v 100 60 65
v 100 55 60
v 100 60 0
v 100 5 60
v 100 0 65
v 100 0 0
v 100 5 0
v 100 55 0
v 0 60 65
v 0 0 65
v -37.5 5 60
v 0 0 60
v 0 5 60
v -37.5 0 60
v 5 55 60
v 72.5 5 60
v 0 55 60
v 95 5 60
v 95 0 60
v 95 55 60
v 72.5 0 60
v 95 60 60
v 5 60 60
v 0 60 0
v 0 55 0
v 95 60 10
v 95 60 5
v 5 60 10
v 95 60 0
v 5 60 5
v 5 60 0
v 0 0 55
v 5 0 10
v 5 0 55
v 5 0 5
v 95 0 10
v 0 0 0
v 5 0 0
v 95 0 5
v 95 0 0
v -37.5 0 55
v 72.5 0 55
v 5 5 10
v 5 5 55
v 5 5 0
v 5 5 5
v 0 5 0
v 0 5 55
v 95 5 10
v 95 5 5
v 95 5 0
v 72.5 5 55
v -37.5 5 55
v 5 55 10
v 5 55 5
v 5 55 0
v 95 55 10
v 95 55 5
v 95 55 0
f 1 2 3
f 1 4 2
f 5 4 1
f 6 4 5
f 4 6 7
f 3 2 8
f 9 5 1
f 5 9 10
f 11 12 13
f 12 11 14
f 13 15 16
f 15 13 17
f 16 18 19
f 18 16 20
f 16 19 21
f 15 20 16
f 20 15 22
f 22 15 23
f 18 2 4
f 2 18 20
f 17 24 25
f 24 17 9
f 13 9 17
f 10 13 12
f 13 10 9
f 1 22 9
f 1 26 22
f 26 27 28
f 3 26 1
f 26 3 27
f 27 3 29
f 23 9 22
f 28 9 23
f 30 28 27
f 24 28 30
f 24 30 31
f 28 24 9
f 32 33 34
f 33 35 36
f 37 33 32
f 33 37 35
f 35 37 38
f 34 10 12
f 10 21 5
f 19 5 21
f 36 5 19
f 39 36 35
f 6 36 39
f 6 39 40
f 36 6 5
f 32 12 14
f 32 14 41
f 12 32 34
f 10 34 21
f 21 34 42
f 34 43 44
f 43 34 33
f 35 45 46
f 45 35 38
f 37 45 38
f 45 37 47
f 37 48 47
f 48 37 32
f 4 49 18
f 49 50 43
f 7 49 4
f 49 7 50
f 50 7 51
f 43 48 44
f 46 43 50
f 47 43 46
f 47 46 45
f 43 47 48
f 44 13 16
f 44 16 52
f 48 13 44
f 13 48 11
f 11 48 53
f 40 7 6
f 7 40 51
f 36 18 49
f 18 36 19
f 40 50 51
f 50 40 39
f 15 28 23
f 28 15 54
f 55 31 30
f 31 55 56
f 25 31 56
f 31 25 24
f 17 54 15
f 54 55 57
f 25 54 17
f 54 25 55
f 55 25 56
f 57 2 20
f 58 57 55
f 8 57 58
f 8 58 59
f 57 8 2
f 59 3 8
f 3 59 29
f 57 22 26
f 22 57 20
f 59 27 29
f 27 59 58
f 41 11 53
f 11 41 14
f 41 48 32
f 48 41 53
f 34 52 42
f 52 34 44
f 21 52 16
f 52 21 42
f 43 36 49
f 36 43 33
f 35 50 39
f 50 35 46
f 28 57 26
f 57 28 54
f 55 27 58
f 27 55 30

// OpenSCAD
// Dimensions
tabletop_length = 100;
tabletop_width = 60;
tabletop_thickness = 5;

leg_thickness = 5;
leg_height = 60;

support_bar_thickness = 5;
central_bar_length = tabletop_width;
side_bar_length = tabletop_length - 2 * leg_thickness;

// Tabletop
module tabletop() {
    cube([tabletop_length, tabletop_width, tabletop_thickness]);
}

// Table leg
module table_leg() {
    cube([leg_thickness, leg_thickness, leg_height]);
}

// Central support bar
module central_support_bar() {
    cube([support_bar_thickness, central_bar_length, support_bar_thickness]);
}

// Side support bar
module side_support_bar() {
    cube([side_bar_length, support_bar_thickness, support_bar_thickness]);
}

// Assembly
module table() {
    // Tabletop
    translate([0, 0, leg_height])
        tabletop();

    // Legs
    translate([0, 0, 0])
        table_leg();
    translate([tabletop_length - leg_thickness, 0, 0])
        table_leg();
    translate([0, tabletop_width - leg_thickness, 0])
        table_leg();
    translate([tabletop_length - leg_thickness, tabletop_width - leg_thickness, 0])
        table_leg();

    // Central support bars (under tabletop, along width)
    translate([tabletop_length/4 - support_bar_thickness/2, 0, leg_height - tabletop_thickness])
        rotate([0,0,90])
        central_support_bar();
    translate([3*tabletop_length/4 - support_bar_thickness/2, 0, leg_height - tabletop_thickness])
        rotate([0,0,90])
        central_support_bar();

    // Side support bars (near bottom, along length)
    translate([leg_thickness, 0, support_bar_thickness])
        side_support_bar();
    translate([leg_thickness, tabletop_width - support_bar_thickness, support_bar_thickness])
        side_support_bar();
}

// Render the table
table();
